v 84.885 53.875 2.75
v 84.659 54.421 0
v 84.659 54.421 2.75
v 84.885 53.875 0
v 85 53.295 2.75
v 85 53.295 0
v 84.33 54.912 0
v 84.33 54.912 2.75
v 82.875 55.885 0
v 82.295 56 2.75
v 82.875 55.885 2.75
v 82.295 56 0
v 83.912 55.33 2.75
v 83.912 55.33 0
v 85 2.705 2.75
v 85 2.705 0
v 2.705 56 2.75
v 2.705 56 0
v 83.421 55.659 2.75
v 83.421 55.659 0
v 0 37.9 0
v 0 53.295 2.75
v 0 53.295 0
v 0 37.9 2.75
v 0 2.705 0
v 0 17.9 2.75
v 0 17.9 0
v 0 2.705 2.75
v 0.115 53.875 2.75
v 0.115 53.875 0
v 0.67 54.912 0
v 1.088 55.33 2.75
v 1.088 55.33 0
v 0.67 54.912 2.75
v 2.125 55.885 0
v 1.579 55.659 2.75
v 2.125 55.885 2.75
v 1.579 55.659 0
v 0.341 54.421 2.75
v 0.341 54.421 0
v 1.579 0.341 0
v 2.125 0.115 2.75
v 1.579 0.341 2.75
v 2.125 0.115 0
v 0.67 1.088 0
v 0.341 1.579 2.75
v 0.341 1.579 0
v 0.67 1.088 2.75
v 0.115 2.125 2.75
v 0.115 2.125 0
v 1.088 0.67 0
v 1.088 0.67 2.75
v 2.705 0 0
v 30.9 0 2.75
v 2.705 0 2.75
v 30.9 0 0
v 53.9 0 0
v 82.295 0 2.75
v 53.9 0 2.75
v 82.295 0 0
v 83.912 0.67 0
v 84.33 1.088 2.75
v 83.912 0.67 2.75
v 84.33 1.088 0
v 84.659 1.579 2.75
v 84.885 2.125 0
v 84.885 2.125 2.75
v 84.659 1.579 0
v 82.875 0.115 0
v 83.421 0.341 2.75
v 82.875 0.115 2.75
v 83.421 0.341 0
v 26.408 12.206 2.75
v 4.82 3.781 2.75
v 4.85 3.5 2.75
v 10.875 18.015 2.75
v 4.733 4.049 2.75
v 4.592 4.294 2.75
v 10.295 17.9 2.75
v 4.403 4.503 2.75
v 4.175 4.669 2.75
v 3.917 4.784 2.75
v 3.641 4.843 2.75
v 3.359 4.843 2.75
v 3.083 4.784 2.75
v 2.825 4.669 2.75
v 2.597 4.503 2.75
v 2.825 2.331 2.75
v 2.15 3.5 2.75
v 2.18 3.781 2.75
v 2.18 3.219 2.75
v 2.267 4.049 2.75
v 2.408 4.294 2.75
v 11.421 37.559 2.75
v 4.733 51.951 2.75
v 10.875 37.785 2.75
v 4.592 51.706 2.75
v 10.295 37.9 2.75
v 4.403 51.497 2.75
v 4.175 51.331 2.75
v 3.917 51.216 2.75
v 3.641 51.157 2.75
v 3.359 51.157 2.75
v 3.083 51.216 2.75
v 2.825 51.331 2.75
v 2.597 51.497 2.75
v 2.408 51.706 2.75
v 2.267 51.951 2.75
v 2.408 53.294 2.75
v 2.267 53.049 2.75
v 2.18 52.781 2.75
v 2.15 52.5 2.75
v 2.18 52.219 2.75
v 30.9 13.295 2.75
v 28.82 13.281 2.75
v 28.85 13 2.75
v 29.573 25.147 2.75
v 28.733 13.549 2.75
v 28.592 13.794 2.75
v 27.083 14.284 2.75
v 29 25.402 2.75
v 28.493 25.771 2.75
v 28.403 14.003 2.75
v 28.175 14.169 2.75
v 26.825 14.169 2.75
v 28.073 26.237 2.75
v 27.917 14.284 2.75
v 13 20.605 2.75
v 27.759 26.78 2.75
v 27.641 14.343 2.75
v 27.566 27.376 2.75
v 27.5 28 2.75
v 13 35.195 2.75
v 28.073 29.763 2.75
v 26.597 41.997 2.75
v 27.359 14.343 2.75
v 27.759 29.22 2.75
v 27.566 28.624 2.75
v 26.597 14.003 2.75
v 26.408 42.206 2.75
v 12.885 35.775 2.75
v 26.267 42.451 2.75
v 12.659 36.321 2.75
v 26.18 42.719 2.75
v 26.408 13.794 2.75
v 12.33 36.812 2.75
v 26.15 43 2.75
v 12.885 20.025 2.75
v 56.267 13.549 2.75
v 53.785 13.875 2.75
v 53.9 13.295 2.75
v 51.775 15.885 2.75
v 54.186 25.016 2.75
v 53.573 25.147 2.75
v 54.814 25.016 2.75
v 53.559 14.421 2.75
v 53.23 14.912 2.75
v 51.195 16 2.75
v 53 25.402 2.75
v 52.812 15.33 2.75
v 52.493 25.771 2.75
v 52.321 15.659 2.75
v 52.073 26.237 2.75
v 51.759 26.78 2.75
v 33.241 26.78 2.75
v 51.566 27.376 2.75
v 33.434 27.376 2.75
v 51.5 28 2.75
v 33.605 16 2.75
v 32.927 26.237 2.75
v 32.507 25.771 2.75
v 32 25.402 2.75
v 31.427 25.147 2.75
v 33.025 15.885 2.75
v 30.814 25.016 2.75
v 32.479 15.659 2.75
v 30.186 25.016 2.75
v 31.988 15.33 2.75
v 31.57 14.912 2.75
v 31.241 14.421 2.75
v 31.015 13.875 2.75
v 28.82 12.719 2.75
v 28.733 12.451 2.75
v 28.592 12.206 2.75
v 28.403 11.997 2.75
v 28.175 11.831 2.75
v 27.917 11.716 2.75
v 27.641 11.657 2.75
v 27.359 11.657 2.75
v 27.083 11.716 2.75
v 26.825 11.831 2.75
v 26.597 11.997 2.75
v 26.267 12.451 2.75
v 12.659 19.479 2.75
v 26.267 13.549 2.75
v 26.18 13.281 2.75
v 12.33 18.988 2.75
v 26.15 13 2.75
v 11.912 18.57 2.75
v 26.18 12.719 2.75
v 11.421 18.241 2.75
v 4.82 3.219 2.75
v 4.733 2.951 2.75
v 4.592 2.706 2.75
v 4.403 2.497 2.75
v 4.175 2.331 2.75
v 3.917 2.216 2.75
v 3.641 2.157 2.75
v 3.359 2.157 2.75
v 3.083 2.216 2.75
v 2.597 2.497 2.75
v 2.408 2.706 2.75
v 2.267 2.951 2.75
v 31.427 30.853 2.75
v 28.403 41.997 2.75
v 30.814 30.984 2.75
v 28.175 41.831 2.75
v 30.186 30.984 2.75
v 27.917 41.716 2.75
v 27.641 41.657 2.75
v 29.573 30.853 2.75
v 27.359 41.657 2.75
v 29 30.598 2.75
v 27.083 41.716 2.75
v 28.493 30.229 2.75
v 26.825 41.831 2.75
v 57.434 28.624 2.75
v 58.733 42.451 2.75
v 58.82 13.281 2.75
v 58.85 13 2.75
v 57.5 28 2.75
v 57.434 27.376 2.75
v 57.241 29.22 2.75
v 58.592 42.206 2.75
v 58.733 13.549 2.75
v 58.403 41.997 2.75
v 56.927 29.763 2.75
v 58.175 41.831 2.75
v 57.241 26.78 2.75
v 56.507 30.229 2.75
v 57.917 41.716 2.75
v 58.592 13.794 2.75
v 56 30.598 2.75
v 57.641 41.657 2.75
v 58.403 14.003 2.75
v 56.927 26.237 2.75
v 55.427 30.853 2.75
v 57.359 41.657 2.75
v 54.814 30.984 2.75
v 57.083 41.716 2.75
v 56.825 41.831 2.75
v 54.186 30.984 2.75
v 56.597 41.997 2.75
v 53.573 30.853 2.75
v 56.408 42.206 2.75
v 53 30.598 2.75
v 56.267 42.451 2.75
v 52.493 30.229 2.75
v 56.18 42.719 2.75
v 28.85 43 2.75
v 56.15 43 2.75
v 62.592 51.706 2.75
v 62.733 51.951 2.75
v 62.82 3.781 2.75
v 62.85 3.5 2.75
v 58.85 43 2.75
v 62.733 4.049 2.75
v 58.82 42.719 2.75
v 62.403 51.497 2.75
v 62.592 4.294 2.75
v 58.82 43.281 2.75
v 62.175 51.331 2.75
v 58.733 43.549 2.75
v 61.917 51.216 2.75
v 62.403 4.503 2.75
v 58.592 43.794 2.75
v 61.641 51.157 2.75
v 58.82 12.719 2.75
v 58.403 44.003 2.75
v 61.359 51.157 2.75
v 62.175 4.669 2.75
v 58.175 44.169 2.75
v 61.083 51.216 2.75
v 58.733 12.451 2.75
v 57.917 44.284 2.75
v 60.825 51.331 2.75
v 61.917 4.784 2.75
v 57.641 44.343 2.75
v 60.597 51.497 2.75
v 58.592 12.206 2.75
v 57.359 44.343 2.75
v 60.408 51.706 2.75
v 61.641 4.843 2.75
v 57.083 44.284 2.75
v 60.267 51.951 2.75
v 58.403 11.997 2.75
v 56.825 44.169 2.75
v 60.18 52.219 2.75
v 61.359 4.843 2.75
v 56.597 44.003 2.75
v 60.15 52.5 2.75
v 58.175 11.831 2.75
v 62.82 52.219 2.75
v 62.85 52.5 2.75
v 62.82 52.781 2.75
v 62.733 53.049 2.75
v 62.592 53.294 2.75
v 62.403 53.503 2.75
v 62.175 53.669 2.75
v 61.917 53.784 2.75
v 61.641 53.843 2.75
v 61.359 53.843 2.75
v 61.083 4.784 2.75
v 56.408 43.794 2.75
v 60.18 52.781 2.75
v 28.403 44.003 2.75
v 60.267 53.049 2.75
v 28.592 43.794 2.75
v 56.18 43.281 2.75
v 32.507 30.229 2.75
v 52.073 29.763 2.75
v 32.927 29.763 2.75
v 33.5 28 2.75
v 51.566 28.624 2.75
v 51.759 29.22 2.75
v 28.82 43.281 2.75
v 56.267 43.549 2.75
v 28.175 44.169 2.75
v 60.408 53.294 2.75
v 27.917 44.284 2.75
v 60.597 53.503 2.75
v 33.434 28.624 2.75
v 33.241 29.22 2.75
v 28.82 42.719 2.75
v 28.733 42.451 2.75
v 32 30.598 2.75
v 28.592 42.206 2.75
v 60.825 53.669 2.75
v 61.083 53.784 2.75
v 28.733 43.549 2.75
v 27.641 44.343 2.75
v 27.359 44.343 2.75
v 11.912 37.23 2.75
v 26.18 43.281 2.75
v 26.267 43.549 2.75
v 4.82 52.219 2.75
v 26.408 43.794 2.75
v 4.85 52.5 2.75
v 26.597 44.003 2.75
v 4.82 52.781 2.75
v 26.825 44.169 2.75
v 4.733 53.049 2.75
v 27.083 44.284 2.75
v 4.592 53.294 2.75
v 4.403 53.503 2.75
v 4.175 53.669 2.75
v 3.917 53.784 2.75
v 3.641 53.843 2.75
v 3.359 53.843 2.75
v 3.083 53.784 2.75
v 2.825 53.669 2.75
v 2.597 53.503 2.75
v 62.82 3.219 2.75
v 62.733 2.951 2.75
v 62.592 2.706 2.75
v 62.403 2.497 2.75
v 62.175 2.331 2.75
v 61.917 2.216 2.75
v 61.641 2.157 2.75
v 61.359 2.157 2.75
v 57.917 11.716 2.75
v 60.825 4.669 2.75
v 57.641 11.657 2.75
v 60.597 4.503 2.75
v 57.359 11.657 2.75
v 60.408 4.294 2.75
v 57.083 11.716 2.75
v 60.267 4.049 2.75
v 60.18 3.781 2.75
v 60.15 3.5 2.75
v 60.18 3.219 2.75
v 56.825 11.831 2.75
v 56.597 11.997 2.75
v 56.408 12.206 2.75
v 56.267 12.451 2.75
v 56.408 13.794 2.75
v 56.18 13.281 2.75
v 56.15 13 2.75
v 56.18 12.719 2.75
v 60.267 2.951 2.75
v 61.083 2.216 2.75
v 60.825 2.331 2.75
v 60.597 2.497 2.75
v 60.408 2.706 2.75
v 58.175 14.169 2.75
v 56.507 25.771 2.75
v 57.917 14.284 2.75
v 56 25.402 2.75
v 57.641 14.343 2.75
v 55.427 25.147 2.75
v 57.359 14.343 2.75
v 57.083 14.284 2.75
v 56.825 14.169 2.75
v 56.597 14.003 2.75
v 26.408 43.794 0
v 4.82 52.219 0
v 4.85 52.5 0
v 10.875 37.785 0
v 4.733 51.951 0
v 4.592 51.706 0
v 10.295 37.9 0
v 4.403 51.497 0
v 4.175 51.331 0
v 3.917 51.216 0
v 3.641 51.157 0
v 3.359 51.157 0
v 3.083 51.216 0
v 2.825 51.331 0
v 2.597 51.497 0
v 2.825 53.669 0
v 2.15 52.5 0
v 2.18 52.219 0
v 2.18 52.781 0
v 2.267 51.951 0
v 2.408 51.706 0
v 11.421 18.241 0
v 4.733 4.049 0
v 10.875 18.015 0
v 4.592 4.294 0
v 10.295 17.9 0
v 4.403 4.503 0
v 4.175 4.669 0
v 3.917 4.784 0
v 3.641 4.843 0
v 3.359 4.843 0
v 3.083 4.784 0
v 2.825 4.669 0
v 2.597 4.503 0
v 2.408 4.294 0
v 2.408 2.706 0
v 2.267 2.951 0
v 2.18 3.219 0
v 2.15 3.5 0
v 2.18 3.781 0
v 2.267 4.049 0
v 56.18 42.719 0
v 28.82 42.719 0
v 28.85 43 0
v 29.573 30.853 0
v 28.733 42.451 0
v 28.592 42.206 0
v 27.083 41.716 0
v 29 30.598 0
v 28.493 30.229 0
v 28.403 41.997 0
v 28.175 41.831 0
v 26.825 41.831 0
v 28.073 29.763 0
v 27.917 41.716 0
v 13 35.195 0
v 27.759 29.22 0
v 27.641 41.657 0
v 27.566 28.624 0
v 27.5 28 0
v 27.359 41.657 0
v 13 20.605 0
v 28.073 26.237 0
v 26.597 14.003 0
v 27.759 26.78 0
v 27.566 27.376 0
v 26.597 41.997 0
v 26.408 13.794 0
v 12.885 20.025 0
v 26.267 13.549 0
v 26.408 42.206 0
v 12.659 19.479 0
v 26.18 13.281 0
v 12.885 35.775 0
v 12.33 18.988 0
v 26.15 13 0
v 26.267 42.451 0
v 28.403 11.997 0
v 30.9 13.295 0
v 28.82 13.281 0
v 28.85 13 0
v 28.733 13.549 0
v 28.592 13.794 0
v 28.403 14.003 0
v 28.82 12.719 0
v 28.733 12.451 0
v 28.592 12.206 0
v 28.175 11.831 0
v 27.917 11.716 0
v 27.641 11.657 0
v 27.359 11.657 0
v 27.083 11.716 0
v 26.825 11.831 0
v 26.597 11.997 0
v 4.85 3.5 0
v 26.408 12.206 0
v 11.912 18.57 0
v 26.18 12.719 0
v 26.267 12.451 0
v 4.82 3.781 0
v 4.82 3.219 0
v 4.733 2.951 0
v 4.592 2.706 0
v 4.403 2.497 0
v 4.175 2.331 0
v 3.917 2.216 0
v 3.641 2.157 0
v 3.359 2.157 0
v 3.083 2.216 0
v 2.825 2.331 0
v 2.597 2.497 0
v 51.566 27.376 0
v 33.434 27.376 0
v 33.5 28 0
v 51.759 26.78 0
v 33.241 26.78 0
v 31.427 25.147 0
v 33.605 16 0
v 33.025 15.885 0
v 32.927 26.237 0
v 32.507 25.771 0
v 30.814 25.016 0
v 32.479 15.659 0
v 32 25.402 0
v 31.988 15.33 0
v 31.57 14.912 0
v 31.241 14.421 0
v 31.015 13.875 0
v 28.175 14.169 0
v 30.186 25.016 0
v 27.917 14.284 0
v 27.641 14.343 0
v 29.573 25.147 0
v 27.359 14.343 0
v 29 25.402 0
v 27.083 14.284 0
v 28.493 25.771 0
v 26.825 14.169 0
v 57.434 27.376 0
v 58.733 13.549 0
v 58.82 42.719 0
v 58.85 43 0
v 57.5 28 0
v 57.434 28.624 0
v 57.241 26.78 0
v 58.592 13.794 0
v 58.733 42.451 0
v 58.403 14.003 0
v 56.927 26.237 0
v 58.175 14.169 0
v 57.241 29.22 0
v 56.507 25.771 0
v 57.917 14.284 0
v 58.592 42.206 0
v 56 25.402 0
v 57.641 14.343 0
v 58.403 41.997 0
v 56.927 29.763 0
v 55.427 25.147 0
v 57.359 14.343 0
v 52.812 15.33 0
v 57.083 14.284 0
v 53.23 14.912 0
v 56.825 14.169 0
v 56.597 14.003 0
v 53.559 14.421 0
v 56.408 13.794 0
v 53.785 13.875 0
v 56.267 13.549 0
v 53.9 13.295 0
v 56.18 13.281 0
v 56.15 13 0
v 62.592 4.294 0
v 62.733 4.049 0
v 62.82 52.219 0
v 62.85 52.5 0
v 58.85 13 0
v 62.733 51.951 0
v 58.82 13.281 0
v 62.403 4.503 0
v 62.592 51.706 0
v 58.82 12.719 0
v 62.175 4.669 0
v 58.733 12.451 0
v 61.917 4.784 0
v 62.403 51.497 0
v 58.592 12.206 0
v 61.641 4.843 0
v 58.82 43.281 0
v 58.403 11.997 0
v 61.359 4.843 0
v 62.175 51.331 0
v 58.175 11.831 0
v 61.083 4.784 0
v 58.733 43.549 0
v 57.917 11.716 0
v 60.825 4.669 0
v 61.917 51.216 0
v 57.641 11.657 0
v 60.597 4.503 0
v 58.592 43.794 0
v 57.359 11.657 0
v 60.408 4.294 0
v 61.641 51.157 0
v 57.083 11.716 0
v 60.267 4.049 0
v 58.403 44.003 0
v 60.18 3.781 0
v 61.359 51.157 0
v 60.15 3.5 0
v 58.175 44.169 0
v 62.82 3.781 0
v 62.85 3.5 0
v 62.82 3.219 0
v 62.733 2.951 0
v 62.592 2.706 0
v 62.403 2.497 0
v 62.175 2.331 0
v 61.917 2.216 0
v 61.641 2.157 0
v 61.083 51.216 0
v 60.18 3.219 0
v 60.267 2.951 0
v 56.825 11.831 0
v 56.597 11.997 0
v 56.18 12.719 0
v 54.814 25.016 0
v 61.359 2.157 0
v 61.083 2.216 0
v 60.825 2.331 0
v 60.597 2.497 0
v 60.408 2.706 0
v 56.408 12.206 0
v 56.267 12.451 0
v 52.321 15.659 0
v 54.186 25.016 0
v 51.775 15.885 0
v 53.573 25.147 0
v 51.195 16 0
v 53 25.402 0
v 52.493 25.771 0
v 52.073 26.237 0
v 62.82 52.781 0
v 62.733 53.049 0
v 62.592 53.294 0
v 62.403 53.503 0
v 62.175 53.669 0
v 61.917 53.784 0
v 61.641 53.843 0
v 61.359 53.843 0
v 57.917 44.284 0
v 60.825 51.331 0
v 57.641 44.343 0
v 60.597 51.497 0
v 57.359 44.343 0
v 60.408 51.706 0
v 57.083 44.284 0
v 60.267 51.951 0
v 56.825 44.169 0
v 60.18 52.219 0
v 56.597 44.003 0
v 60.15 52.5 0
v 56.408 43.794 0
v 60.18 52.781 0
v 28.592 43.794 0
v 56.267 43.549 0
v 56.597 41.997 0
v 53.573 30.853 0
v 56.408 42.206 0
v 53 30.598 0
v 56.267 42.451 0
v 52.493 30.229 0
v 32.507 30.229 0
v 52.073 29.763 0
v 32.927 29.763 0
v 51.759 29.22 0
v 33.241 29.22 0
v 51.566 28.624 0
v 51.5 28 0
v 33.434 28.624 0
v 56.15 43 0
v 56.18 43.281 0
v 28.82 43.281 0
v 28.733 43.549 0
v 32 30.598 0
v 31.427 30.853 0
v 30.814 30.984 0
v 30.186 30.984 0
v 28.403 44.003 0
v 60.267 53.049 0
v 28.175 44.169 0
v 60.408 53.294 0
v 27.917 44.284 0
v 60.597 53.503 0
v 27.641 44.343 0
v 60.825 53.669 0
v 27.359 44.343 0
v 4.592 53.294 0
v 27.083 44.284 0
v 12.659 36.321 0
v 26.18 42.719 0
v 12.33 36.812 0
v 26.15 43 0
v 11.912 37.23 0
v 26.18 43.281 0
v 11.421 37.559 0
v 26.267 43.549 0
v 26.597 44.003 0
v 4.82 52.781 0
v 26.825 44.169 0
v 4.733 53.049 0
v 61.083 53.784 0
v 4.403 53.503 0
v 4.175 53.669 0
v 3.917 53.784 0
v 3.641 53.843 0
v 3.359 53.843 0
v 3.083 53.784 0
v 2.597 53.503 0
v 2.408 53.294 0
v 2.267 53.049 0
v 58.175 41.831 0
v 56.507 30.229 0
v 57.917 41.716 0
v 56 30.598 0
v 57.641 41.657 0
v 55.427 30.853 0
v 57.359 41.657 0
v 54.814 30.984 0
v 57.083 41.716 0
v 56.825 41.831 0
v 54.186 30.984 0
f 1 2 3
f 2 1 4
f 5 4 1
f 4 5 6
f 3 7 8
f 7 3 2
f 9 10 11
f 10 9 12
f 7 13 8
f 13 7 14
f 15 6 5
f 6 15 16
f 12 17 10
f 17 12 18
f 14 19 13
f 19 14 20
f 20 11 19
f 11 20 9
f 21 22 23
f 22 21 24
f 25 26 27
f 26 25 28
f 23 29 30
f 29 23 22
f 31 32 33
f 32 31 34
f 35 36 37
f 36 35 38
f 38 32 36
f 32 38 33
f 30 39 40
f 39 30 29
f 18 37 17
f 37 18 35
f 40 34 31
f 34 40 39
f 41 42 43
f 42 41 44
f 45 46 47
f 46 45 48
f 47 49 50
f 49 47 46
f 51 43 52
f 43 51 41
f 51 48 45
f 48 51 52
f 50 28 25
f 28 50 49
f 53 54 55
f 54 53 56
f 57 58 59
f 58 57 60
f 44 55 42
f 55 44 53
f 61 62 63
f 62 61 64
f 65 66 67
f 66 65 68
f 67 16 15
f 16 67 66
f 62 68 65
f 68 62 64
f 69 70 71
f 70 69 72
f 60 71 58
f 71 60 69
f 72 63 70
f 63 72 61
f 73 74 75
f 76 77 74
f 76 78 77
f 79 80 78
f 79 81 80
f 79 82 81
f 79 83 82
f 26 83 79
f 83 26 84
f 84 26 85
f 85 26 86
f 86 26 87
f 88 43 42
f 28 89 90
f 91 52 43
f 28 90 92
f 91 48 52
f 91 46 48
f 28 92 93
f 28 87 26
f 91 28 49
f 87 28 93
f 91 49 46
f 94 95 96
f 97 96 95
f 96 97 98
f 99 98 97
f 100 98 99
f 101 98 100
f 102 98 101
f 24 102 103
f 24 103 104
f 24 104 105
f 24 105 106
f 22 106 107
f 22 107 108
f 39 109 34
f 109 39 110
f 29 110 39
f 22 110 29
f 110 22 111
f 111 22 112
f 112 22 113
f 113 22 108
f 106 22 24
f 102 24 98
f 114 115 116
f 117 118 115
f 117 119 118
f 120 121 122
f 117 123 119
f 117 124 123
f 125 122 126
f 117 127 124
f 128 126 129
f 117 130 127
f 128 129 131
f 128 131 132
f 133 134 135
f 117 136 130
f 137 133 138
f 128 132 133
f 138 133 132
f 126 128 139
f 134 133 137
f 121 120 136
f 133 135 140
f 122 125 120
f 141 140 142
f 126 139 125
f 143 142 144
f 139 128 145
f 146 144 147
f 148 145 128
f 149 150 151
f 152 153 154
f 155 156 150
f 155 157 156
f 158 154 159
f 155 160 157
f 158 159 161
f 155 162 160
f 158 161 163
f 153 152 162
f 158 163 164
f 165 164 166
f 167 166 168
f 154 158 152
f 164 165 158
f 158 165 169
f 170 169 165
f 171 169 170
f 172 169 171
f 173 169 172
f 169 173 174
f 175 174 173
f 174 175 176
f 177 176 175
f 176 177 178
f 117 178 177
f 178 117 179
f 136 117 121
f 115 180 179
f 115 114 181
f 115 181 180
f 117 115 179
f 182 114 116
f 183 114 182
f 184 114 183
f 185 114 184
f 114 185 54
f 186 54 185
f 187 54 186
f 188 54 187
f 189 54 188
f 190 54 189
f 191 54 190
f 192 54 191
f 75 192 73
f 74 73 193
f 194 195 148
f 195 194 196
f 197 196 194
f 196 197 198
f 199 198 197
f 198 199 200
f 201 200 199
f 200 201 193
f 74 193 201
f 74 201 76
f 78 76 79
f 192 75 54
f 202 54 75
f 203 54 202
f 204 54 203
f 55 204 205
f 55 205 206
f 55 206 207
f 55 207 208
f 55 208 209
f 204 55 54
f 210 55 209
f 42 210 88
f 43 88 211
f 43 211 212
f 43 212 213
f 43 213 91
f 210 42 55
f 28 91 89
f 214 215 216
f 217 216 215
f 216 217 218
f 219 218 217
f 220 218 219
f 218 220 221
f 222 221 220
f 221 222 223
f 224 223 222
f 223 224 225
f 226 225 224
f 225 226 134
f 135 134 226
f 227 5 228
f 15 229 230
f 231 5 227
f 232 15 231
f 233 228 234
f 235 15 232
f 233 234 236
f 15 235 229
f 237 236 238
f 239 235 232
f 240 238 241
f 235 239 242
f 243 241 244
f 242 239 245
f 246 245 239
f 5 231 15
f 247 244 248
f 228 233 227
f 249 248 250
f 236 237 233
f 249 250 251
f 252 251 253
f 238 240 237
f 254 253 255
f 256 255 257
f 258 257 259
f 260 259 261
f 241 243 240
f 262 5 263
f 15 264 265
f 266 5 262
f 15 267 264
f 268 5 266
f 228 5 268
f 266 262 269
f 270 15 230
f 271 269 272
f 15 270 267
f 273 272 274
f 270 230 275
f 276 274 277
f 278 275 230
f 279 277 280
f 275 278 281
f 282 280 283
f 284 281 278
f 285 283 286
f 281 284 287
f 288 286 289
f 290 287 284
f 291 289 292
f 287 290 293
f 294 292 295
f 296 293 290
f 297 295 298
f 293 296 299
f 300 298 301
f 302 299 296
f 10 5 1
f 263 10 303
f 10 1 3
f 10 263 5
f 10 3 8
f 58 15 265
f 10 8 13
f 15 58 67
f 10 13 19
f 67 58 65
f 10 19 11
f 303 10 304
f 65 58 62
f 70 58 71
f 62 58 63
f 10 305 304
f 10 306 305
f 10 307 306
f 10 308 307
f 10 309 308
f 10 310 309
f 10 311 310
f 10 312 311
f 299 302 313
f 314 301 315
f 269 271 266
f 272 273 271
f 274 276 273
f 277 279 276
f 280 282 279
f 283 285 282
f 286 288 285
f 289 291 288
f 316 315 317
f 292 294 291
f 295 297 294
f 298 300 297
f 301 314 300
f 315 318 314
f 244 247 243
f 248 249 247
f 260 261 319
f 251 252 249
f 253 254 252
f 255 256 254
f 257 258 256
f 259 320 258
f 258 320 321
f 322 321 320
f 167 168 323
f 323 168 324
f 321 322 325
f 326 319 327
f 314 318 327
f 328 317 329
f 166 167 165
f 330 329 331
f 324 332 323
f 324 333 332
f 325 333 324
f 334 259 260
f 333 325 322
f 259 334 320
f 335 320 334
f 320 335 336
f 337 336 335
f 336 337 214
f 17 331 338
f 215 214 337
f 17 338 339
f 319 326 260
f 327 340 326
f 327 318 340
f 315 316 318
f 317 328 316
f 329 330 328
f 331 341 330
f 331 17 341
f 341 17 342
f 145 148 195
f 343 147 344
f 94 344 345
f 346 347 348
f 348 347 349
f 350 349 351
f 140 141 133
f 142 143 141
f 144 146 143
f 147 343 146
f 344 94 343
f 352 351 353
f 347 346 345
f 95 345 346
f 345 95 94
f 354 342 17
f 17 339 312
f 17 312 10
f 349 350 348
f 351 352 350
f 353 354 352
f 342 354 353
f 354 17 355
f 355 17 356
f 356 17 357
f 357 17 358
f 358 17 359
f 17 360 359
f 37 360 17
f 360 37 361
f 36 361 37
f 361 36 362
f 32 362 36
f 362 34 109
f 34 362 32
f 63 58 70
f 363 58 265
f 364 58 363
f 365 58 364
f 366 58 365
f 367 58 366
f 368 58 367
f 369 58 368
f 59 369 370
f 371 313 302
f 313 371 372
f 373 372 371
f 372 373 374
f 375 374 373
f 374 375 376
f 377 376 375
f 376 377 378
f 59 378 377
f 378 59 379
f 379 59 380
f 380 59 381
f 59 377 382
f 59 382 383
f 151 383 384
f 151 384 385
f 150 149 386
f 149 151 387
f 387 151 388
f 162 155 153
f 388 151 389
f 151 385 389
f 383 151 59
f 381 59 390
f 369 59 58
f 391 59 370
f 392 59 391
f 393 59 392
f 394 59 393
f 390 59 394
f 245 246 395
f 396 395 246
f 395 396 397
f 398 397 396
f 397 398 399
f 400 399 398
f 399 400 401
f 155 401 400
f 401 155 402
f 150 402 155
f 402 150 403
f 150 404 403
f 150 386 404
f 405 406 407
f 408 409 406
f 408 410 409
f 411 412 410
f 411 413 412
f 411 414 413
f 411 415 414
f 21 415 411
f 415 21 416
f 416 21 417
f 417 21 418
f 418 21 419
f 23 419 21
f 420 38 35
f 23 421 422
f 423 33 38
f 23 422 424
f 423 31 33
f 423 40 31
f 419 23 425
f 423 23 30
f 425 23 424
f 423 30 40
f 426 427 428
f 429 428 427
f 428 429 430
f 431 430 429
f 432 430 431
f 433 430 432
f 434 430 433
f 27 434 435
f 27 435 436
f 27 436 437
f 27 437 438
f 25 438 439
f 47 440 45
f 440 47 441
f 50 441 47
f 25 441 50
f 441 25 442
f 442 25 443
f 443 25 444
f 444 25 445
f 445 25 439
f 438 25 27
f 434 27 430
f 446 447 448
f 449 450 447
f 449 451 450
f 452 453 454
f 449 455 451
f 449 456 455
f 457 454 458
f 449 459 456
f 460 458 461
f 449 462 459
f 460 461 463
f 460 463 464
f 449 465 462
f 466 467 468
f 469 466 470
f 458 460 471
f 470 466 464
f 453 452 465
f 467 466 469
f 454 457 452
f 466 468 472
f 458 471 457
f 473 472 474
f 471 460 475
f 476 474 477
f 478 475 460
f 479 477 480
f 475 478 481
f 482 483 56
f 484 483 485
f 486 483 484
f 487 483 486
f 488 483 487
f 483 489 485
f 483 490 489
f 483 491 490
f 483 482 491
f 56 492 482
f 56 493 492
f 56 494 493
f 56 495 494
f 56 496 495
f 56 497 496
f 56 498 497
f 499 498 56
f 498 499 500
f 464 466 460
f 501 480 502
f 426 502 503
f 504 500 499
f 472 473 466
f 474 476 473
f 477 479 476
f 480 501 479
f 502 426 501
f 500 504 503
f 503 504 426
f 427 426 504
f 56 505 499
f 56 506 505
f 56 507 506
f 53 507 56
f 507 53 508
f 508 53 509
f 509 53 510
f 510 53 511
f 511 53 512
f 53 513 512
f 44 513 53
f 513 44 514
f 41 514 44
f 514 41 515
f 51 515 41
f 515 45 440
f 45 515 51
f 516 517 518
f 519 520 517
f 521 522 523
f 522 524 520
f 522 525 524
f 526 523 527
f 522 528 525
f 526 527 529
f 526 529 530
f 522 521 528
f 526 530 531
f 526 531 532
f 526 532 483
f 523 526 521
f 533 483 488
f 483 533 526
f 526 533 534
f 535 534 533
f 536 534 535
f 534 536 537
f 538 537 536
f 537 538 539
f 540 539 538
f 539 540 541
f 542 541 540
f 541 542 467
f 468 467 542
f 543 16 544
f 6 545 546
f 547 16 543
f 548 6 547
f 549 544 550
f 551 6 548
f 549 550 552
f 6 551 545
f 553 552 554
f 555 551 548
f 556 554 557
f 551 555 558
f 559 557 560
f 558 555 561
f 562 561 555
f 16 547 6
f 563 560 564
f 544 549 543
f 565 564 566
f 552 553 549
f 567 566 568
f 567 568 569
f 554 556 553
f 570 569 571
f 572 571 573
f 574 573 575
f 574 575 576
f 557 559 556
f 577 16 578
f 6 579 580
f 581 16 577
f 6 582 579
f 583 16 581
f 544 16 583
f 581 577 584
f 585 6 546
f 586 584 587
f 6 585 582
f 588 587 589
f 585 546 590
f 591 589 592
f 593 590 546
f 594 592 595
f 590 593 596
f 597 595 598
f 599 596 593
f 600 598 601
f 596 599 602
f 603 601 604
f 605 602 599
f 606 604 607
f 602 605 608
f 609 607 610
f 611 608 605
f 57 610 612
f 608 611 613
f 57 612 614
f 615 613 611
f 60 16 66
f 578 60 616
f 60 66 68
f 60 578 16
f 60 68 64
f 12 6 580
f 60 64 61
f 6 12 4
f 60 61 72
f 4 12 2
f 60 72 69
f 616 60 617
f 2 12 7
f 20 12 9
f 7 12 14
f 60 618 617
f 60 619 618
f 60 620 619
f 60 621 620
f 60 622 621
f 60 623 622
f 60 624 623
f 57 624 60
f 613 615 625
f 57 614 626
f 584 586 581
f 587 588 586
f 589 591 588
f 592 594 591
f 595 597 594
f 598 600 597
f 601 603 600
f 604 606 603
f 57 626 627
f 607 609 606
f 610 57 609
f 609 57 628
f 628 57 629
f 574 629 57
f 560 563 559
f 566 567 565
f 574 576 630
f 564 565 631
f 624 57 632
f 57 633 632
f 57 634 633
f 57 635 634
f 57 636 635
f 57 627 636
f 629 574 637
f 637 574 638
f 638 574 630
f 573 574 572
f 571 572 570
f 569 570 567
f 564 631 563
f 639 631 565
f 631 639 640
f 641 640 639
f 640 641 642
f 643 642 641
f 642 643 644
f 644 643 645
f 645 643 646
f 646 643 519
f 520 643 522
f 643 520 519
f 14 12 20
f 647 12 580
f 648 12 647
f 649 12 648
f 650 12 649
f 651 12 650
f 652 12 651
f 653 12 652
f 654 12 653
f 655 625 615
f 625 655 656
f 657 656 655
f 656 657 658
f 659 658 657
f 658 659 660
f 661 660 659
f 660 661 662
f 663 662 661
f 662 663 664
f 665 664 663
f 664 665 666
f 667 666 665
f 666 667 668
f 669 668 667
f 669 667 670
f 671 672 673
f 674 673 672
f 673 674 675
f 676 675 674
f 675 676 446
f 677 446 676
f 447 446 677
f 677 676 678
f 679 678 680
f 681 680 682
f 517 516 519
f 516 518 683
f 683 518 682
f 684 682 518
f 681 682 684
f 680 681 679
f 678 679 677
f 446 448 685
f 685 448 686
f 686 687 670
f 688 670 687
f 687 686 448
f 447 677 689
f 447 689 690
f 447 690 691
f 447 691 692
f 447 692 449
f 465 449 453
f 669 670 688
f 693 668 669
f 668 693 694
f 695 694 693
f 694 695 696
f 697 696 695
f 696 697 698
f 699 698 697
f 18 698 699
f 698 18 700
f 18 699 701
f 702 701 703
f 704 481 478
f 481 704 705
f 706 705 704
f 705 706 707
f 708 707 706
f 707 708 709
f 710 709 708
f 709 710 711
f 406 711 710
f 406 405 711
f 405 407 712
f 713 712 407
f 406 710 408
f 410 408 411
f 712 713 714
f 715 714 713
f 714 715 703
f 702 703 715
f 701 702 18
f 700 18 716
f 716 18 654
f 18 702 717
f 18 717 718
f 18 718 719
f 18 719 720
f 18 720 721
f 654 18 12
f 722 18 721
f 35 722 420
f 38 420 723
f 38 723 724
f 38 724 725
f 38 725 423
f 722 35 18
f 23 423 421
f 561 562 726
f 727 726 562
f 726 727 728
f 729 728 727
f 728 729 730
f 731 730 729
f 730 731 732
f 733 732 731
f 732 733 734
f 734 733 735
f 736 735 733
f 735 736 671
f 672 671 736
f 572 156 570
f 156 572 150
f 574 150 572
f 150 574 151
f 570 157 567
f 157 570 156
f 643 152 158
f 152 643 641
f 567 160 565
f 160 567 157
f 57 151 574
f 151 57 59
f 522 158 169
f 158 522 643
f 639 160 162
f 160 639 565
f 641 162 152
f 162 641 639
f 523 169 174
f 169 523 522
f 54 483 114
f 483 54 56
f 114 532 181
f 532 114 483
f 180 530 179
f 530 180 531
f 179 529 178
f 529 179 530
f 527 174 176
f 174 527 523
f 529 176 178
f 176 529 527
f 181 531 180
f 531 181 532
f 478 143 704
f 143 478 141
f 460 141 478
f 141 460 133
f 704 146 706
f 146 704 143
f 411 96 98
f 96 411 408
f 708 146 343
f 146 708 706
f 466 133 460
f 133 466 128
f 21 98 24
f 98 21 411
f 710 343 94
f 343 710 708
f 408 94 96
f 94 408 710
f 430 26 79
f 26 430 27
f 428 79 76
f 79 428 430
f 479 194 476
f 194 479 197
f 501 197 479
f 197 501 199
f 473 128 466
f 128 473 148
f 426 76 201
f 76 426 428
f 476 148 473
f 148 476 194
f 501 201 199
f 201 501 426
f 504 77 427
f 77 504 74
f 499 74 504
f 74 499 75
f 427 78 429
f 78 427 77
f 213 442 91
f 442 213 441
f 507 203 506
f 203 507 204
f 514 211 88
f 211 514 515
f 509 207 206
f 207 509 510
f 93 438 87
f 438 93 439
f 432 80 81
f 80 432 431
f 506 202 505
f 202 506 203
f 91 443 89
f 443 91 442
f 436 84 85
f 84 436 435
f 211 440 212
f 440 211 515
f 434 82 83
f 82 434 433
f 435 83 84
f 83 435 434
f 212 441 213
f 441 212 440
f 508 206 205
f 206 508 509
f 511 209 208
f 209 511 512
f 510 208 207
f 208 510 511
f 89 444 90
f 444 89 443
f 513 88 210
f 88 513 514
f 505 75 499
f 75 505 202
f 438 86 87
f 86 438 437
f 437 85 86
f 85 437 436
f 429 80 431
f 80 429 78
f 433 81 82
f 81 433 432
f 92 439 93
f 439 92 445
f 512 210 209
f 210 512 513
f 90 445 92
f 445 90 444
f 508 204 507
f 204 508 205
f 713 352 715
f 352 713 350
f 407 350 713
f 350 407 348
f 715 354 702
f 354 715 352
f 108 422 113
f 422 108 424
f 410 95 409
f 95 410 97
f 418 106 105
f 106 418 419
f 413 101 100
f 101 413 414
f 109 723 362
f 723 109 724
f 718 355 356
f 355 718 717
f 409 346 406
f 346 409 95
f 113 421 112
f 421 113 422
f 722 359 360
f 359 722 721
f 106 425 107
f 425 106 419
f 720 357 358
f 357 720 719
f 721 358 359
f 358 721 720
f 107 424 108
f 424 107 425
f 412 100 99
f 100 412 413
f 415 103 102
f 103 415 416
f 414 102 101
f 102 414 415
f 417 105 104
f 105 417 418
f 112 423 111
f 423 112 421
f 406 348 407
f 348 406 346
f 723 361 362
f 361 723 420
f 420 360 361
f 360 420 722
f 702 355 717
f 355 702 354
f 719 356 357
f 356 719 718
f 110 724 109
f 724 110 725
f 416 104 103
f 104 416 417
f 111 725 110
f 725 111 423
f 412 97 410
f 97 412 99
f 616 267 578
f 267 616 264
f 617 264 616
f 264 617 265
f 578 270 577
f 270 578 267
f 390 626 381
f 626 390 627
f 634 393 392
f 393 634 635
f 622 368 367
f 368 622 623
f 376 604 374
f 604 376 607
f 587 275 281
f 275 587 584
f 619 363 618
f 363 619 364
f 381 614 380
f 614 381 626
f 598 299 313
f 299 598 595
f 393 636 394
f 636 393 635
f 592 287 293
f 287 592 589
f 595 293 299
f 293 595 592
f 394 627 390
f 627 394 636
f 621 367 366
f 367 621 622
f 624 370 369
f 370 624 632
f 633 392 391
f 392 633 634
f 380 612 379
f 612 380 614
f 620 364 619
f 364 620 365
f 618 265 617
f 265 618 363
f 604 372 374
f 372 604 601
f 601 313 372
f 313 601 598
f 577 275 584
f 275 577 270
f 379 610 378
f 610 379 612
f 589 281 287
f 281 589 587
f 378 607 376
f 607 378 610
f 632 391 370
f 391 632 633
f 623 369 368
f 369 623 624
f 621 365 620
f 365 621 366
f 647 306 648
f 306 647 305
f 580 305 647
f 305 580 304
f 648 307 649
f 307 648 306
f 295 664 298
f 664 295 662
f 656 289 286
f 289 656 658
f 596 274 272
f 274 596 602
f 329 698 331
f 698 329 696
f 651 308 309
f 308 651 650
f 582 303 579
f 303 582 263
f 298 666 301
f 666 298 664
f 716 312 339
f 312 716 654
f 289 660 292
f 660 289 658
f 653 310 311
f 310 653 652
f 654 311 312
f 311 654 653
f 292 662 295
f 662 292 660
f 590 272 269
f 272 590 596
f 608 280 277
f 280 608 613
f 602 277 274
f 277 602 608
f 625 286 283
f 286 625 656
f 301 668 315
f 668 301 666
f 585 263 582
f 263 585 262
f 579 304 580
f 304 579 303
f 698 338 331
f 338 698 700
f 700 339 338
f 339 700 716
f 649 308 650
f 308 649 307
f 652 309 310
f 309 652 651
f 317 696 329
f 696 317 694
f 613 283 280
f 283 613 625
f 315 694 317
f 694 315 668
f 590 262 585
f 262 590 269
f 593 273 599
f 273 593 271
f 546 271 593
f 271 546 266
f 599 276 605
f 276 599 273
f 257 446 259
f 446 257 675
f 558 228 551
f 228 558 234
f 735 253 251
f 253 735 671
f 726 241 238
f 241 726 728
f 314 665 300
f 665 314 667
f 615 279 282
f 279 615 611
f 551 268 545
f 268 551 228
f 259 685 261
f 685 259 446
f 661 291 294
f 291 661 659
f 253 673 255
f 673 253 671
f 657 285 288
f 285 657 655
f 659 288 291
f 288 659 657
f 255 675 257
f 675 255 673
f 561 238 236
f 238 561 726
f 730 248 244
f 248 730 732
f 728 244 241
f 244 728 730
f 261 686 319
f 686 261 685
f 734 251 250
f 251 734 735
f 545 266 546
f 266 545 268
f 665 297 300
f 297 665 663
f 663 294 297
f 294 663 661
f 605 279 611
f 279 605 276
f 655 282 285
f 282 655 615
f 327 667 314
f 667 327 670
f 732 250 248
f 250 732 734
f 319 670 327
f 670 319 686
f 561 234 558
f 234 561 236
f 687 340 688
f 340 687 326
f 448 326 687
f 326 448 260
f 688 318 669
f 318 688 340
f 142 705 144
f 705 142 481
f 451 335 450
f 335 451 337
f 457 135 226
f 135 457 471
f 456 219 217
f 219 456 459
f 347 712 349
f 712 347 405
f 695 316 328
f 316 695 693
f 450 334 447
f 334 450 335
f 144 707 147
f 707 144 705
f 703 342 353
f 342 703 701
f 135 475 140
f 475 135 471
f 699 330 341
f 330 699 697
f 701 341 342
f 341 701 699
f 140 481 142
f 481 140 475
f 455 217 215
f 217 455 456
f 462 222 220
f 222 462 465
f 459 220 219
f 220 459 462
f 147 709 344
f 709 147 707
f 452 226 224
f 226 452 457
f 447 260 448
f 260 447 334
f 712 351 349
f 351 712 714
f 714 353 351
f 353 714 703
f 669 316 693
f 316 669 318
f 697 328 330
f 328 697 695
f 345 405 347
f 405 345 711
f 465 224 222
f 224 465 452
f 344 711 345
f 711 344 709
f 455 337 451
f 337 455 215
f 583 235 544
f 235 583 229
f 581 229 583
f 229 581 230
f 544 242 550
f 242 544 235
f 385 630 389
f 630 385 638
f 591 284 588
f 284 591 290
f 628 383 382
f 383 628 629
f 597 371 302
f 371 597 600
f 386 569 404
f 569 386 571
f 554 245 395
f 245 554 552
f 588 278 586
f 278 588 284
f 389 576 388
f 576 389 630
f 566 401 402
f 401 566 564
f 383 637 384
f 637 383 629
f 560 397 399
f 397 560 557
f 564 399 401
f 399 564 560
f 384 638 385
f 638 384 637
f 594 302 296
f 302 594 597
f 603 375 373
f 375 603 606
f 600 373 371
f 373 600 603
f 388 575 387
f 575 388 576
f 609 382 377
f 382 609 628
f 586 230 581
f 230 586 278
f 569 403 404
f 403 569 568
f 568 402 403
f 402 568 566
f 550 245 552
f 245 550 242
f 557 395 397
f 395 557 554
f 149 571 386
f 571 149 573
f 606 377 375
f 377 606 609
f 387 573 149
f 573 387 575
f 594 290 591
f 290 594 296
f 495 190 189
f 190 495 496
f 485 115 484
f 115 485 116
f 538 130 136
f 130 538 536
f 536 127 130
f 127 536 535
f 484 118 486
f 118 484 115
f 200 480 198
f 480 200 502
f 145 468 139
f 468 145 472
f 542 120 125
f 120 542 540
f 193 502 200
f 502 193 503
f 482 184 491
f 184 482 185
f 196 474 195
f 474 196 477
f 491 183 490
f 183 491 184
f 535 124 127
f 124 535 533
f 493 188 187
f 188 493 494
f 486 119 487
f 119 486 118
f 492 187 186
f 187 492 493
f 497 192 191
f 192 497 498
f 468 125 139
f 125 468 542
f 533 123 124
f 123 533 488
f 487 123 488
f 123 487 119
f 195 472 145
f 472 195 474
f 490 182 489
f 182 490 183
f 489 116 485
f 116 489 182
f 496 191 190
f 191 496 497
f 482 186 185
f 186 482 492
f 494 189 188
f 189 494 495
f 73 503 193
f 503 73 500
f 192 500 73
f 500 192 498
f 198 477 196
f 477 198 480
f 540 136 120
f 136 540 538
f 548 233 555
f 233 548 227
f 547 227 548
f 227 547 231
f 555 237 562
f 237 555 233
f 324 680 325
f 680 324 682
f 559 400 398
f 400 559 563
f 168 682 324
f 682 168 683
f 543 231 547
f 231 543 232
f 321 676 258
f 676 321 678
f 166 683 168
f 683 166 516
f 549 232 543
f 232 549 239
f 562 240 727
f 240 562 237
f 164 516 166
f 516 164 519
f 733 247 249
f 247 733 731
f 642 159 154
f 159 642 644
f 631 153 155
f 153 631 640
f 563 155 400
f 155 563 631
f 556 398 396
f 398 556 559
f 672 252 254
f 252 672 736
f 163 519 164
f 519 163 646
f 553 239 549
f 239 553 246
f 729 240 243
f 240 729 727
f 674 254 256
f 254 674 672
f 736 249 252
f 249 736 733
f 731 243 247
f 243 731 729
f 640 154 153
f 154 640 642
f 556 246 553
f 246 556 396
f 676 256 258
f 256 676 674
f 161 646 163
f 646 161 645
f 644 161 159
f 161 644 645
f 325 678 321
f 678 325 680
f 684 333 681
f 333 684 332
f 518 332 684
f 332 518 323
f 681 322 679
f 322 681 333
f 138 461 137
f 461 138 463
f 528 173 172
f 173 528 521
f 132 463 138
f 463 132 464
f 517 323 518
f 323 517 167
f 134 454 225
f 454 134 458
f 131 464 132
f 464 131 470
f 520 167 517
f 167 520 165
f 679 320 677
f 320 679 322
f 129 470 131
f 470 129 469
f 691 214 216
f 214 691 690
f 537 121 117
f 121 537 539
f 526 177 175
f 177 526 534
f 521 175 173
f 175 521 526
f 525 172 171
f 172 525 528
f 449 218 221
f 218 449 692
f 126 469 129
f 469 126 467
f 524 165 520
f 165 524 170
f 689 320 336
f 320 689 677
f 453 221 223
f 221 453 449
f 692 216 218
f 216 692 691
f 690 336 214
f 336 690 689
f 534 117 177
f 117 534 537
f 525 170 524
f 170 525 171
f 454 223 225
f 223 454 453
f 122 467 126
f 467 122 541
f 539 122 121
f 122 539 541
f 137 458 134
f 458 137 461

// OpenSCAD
include <BOSL/constants.scad>
use <BOSL/shapes.scad>

$fs = 0.01;

// this is for the pi 4b and the HQ camera module
difference()
{
    cuboid([ 85, 56, 2.75 ], fillet = 3, edges = EDGES_Z_ALL, center = false);

    // pi holes
    translate([ 3.5, 3.5, -1 ]) cylinder(h = 5, r = 1.35);
    translate([ 3.5, 49 + 3.5, -1 ]) cylinder(h = 5, r = 1.35);
    translate([ 3.5 + 58, 3.5, -1 ]) cylinder(h = 5, r = 1.35);
    translate([ 3.5 + 58, 49 + 3.5, -1 ]) cylinder(h = 5, r = 1.35);

    // mid: 42.5 x 28

    // camera holes
    translate([ (85 / 2) + (38 / 2) - 4, (56 / 2) + (38 / 2) - 4, -1 ]) // 57.5 x 43
        cylinder(h = 5, r = 1.35);
    translate([ (85 / 2) - (38 / 2) + 4, (56 / 2) + (38 / 2) - 4, -1 ]) // 23.5 x 43
        cylinder(h = 5, r = 1.35);
    translate([ (85 / 2) + (38 / 2) - 4, (56 / 2) - (38 / 2) + 4, -1 ]) // 57.5 x 13
        cylinder(h = 5, r = 1.35);
    translate([ (85 / 2) - (38 / 2) + 4, (56 / 2) - (38 / 2) + 4, -1 ]) // 23.5 x 13
        cylinder(h = 5, r = 1.35);

    // 6 diameter
    // 24 in between nuts
    // 7 from edge
    translate([ (85 / 2) + (24 / 2), 56 / 2, -1 ]) cylinder(h = 5, r = 3);

    translate([ (85 / 2) - (24 / 2), 56 / 2, -1 ]) cylinder(h = 5, r = 3);

    // cable gap 23 x 16
    // x 30.9
    translate([ 30.9, -3, -1 ]) cuboid([ 23, 19, 5 ], fillet = 3, edges = EDGES_Z_ALL, center = false);

    // microsd gap 13 x 15
    // y 17.9
    translate([ -3, 17.9, -1 ]) cuboid([ 16, 20, 5 ], fillet = 3, edges = EDGES_Z_ALL, center = false);
};
